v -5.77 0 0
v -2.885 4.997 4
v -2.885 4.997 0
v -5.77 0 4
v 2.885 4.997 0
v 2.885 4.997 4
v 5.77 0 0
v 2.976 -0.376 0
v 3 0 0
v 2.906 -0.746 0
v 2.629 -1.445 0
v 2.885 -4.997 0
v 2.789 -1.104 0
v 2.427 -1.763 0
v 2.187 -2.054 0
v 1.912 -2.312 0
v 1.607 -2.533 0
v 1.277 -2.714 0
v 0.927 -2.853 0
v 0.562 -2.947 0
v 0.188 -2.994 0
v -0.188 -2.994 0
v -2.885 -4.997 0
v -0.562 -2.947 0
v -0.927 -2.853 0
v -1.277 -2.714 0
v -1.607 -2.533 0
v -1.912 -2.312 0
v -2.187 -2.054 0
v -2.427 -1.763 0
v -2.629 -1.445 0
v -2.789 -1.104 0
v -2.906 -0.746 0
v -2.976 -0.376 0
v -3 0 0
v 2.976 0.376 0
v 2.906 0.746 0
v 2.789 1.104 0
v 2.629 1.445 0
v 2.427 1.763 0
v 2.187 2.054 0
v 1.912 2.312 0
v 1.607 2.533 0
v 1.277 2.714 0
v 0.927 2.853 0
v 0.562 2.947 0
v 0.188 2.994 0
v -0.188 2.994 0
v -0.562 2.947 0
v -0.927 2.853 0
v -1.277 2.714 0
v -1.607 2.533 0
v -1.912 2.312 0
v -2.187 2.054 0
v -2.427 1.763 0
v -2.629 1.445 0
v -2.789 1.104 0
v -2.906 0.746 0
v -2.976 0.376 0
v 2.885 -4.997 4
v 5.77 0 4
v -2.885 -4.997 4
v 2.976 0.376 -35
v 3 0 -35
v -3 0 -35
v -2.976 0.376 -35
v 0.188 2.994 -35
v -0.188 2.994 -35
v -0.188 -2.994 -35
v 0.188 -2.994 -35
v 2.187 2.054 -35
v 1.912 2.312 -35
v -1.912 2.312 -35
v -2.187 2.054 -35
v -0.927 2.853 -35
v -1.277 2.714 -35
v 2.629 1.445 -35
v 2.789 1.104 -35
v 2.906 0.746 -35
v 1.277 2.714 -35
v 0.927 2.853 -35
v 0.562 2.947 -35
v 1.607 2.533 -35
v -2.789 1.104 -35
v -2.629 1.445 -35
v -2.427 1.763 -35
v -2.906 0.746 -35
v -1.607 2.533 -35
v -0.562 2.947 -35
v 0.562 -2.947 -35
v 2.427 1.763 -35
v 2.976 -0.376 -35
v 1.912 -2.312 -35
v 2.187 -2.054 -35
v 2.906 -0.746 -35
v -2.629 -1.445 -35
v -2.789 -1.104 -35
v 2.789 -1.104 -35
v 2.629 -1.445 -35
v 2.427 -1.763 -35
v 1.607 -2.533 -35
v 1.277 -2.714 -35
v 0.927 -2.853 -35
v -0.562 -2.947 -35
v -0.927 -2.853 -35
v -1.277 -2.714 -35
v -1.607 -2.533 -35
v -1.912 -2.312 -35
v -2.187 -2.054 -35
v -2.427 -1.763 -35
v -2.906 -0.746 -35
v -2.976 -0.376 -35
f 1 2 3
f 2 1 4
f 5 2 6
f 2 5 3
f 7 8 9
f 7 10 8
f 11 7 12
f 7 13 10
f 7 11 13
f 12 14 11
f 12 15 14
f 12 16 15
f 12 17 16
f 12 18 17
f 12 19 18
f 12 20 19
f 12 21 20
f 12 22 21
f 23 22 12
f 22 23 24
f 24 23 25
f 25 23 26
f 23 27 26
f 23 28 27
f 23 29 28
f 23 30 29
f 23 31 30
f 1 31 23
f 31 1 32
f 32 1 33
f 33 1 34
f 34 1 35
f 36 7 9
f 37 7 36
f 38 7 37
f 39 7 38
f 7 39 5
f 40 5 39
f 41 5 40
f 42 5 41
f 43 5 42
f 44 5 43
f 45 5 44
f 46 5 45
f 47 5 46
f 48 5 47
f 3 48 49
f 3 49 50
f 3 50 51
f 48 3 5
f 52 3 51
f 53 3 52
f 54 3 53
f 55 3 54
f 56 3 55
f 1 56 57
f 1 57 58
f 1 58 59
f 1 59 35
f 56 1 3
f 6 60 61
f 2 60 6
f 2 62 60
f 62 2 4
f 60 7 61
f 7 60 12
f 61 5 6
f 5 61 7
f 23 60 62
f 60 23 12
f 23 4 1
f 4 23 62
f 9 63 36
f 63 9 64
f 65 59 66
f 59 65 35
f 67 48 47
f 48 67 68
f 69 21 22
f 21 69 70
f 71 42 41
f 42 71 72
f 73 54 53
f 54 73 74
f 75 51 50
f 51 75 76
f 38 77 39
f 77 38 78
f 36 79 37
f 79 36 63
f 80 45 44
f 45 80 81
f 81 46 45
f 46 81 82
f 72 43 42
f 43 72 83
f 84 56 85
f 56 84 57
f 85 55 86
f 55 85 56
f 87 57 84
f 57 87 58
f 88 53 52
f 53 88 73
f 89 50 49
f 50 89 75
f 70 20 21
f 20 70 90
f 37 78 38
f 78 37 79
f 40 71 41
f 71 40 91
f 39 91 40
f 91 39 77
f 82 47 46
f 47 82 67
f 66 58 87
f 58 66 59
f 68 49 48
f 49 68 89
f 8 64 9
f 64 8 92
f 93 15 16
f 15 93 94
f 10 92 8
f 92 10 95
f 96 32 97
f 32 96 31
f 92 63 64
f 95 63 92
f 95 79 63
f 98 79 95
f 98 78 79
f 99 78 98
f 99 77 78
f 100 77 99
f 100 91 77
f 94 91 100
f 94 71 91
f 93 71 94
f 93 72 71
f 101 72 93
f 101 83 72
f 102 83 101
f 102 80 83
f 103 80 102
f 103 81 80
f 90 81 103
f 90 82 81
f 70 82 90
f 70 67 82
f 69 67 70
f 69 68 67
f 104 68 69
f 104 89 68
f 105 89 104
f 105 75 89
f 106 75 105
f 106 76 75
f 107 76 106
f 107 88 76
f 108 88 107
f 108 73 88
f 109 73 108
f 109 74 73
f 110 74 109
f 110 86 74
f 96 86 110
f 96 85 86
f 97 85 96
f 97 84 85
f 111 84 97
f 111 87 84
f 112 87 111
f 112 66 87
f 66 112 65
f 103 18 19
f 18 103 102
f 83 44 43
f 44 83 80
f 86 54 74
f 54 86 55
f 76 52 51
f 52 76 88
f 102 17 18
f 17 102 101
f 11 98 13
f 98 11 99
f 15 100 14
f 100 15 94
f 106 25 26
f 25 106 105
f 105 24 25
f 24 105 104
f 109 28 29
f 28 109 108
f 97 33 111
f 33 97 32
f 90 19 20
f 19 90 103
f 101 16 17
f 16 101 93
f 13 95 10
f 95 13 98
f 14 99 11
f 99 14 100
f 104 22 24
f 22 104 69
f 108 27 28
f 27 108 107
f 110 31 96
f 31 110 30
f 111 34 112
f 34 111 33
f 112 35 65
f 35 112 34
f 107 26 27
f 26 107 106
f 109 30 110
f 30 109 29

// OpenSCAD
$fn = 50;


difference() {
	union() {
		translate(v = [0, 0, 0]) {
			rotate(a = [0, 0, 0]) {
				translate(v = [0, 0, 0]) {
					rotate(a = [0, 0, 0]) {
						linear_extrude(height = 4) {
							polygon(points = [[5.7700000000, 0.0000000000], [2.8850000000, 4.9969665798], [-2.8850000000, 4.9969665798], [-5.7700000000, 0.0000000000], [-2.8850000000, -4.9969665798], [2.8850000000, -4.9969665798]]);
						}
					}
				}
			}
		}
		translate(v = [0, 0, -35]) {
			rotate(a = [0, 0, 0]) {
				cylinder(h = 35, r = 3.0000000000);
			}
		}
	}
	union();
}
